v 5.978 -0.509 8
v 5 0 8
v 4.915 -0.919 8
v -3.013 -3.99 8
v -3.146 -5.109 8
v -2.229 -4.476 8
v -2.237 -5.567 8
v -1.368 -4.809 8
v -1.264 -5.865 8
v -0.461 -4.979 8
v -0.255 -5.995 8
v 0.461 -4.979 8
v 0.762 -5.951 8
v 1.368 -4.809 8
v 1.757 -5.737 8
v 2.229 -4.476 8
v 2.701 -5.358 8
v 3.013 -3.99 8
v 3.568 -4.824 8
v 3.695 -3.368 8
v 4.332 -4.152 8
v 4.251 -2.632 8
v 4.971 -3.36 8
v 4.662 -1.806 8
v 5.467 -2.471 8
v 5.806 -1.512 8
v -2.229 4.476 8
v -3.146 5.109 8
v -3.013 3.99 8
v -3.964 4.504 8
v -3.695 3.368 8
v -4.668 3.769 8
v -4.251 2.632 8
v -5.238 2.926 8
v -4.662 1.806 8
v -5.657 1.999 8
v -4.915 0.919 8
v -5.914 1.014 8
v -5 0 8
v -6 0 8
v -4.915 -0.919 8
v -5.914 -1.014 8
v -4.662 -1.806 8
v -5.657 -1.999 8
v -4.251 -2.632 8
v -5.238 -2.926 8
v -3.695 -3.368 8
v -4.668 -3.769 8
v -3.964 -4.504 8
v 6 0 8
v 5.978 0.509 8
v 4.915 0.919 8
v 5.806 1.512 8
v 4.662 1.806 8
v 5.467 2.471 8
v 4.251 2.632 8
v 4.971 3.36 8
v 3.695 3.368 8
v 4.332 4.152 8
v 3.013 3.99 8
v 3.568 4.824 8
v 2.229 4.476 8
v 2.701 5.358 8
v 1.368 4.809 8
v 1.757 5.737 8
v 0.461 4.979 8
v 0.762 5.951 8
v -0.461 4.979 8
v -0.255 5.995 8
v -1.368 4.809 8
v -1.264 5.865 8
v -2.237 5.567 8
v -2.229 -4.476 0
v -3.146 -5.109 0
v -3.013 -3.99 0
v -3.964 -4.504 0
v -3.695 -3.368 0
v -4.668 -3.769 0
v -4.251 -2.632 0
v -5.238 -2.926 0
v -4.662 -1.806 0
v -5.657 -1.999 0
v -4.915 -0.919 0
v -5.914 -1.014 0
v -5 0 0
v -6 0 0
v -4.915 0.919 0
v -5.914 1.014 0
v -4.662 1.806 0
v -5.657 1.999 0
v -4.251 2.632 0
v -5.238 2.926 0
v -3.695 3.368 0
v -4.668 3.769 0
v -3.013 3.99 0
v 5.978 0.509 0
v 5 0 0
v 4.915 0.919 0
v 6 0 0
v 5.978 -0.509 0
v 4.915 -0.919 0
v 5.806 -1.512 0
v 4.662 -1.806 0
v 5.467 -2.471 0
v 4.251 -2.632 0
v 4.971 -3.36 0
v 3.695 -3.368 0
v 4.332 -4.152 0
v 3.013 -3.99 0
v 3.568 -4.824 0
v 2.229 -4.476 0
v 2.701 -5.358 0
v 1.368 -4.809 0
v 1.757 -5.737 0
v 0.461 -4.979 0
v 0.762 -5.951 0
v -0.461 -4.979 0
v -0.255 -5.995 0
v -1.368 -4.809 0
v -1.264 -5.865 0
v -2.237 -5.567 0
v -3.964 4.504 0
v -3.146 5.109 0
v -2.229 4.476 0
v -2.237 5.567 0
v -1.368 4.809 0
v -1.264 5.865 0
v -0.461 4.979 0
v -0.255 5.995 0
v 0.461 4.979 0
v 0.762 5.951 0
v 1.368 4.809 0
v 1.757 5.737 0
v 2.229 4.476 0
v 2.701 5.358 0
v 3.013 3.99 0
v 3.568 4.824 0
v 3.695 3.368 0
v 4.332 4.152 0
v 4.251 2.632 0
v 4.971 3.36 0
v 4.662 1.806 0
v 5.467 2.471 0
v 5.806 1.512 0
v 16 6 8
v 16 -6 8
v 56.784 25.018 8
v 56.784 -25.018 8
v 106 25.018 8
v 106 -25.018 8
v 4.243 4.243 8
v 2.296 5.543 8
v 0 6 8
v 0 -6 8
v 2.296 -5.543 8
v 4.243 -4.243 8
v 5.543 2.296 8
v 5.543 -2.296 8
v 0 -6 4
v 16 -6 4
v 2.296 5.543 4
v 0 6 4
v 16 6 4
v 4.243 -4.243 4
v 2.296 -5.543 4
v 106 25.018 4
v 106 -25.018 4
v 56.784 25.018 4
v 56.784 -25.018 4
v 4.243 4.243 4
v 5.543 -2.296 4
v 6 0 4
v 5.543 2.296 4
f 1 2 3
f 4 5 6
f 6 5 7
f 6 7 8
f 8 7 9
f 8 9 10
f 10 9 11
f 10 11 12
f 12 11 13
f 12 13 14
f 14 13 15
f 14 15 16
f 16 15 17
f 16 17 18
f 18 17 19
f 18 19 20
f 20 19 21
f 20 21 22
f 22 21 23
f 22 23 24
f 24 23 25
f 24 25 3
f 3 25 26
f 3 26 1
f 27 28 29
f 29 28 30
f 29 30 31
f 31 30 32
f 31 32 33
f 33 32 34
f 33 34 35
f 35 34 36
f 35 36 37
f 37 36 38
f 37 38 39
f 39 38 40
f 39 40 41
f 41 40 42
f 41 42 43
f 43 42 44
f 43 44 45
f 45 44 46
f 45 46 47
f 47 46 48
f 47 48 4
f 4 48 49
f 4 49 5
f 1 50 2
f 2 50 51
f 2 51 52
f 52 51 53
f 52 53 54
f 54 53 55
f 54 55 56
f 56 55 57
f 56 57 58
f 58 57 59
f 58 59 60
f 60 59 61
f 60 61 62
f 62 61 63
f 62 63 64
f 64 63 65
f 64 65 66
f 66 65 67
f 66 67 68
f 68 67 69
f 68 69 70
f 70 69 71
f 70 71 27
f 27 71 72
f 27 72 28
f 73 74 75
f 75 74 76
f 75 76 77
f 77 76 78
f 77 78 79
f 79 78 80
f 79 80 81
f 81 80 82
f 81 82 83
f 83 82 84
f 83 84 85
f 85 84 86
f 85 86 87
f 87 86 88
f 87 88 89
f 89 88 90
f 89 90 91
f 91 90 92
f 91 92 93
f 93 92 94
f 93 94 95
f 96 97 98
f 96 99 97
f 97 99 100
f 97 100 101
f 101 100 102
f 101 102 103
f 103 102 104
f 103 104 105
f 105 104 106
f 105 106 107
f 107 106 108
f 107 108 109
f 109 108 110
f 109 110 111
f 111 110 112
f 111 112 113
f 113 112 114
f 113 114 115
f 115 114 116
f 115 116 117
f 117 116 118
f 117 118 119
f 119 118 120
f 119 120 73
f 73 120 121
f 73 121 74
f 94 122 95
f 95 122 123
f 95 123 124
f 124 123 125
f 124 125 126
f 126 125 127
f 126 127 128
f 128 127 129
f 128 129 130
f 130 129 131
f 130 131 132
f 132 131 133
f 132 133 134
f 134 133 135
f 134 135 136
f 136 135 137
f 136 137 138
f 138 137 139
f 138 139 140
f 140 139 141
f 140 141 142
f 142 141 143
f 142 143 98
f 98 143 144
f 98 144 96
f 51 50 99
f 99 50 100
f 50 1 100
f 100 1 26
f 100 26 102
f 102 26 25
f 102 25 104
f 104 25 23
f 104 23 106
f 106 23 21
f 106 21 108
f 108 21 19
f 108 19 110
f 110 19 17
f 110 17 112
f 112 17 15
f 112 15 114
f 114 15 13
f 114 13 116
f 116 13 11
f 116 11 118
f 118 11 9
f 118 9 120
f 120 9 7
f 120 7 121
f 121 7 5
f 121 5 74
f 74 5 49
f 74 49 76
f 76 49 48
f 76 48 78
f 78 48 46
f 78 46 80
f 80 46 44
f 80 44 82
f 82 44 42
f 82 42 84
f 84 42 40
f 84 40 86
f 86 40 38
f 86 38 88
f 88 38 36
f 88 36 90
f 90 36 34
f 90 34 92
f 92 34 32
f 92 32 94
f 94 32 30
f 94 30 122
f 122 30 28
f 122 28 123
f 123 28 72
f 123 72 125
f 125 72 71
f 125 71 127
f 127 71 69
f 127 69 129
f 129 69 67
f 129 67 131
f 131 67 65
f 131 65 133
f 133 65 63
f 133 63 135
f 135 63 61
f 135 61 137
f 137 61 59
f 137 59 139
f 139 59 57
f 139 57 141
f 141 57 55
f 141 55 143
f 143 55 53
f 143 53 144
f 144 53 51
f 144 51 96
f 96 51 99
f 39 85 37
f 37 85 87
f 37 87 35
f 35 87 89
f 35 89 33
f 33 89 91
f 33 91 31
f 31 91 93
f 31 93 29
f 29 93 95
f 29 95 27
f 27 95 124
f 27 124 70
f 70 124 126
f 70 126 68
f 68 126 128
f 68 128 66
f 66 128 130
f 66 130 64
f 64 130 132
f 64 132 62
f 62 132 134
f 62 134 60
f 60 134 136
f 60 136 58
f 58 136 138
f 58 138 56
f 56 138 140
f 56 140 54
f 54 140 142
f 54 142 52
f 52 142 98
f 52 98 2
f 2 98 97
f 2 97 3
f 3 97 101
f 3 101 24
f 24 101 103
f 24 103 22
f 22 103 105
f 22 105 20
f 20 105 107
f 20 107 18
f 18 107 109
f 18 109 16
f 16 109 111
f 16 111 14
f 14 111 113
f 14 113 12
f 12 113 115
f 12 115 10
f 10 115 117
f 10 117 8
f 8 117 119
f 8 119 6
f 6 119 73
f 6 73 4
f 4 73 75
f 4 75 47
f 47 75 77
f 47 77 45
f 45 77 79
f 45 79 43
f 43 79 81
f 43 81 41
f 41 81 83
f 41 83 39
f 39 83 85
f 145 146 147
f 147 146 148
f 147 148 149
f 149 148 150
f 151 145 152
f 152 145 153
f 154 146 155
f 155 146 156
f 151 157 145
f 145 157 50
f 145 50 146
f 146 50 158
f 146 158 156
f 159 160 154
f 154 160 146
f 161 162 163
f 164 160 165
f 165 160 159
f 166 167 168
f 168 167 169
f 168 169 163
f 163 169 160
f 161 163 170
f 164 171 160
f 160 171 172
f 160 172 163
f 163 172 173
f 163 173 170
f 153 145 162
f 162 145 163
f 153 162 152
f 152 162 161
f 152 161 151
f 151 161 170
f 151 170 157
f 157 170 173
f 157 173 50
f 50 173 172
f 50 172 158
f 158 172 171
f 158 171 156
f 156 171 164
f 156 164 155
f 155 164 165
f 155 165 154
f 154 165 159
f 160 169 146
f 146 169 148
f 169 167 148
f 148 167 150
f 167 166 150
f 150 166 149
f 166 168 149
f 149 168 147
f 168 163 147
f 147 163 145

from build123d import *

# Parameters (mm, degrees)
SKETCH2_R                       = 6
SKETCH2_R_2                     = 5
BOSS_EXTRUDE1_DEPTH             = 8
SKETCH3_W                       = 4
SKETCH3_H                       = 12
BOSS_EXTRUDE2_DEPTH             = 10
BOSS_EXTRUDE2_DIRECTION_2_REACH = 17.62
BOSS_EXTRUDE3_DEPTH             = 4


with BuildPart() as part:
    # Sketch2 → Boss-Extrude1 (new body)
    with BuildSketch(Plane.XY):
        Circle(SKETCH2_R)
        Circle(SKETCH2_R_2, mode=Mode.SUBTRACT)
    extrude(amount=BOSS_EXTRUDE1_DEPTH)


with BuildPart() as body_2:
    # Sketch3 → Boss-Extrude2 (new body)
    with BuildSketch(Plane(origin=(6, 0, 0), x_dir=(0, 0, -1), z_dir=(1, 0, 0))):
        with Locations((-6, 0)):
            Rectangle(SKETCH3_W, SKETCH3_H)
    extrude(amount=BOSS_EXTRUDE2_DEPTH)


    # Sketch3 → Boss-Extrude2 direction 2 (add, up to next)
    with BuildSketch(Plane(origin=(6, 0, 0), x_dir=(0, 0, -1), z_dir=(1, 0, 0)), mode=Mode.PRIVATE) as boss_extrude2_direction_2_sk1:
        with Locations((-6, 0)):
            Rectangle(SKETCH3_W, SKETCH3_H)
    boss_extrude2_direction_2_tool1 = extrude(boss_extrude2_direction_2_sk1.sketch, amount=-BOSS_EXTRUDE2_DIRECTION_2_REACH, mode=Mode.PRIVATE) - part.part
    add(boss_extrude2_direction_2_tool1.solids().sort_by_distance((6, 0, 6))[0])
    add(boss_extrude2_direction_2_tool1.solids().sort_by_distance((6, 0, 6))[1])

    # Sketch4 → Boss-Extrude3 (add)
    with BuildSketch(Plane(origin=(0, 0, 4), x_dir=(-1, 0, 0), z_dir=(0, 0, -1))):
        Polygon((-16, 6), (-56.783850417, 25.017821778), (-106, 25.017821778), (-106, -25.017821778), (-56.783850417, -25.017821778), (-16, -6), align=None)
    extrude(amount=-BOSS_EXTRUDE3_DEPTH)


solid = Compound([part.part, body_2.part])
